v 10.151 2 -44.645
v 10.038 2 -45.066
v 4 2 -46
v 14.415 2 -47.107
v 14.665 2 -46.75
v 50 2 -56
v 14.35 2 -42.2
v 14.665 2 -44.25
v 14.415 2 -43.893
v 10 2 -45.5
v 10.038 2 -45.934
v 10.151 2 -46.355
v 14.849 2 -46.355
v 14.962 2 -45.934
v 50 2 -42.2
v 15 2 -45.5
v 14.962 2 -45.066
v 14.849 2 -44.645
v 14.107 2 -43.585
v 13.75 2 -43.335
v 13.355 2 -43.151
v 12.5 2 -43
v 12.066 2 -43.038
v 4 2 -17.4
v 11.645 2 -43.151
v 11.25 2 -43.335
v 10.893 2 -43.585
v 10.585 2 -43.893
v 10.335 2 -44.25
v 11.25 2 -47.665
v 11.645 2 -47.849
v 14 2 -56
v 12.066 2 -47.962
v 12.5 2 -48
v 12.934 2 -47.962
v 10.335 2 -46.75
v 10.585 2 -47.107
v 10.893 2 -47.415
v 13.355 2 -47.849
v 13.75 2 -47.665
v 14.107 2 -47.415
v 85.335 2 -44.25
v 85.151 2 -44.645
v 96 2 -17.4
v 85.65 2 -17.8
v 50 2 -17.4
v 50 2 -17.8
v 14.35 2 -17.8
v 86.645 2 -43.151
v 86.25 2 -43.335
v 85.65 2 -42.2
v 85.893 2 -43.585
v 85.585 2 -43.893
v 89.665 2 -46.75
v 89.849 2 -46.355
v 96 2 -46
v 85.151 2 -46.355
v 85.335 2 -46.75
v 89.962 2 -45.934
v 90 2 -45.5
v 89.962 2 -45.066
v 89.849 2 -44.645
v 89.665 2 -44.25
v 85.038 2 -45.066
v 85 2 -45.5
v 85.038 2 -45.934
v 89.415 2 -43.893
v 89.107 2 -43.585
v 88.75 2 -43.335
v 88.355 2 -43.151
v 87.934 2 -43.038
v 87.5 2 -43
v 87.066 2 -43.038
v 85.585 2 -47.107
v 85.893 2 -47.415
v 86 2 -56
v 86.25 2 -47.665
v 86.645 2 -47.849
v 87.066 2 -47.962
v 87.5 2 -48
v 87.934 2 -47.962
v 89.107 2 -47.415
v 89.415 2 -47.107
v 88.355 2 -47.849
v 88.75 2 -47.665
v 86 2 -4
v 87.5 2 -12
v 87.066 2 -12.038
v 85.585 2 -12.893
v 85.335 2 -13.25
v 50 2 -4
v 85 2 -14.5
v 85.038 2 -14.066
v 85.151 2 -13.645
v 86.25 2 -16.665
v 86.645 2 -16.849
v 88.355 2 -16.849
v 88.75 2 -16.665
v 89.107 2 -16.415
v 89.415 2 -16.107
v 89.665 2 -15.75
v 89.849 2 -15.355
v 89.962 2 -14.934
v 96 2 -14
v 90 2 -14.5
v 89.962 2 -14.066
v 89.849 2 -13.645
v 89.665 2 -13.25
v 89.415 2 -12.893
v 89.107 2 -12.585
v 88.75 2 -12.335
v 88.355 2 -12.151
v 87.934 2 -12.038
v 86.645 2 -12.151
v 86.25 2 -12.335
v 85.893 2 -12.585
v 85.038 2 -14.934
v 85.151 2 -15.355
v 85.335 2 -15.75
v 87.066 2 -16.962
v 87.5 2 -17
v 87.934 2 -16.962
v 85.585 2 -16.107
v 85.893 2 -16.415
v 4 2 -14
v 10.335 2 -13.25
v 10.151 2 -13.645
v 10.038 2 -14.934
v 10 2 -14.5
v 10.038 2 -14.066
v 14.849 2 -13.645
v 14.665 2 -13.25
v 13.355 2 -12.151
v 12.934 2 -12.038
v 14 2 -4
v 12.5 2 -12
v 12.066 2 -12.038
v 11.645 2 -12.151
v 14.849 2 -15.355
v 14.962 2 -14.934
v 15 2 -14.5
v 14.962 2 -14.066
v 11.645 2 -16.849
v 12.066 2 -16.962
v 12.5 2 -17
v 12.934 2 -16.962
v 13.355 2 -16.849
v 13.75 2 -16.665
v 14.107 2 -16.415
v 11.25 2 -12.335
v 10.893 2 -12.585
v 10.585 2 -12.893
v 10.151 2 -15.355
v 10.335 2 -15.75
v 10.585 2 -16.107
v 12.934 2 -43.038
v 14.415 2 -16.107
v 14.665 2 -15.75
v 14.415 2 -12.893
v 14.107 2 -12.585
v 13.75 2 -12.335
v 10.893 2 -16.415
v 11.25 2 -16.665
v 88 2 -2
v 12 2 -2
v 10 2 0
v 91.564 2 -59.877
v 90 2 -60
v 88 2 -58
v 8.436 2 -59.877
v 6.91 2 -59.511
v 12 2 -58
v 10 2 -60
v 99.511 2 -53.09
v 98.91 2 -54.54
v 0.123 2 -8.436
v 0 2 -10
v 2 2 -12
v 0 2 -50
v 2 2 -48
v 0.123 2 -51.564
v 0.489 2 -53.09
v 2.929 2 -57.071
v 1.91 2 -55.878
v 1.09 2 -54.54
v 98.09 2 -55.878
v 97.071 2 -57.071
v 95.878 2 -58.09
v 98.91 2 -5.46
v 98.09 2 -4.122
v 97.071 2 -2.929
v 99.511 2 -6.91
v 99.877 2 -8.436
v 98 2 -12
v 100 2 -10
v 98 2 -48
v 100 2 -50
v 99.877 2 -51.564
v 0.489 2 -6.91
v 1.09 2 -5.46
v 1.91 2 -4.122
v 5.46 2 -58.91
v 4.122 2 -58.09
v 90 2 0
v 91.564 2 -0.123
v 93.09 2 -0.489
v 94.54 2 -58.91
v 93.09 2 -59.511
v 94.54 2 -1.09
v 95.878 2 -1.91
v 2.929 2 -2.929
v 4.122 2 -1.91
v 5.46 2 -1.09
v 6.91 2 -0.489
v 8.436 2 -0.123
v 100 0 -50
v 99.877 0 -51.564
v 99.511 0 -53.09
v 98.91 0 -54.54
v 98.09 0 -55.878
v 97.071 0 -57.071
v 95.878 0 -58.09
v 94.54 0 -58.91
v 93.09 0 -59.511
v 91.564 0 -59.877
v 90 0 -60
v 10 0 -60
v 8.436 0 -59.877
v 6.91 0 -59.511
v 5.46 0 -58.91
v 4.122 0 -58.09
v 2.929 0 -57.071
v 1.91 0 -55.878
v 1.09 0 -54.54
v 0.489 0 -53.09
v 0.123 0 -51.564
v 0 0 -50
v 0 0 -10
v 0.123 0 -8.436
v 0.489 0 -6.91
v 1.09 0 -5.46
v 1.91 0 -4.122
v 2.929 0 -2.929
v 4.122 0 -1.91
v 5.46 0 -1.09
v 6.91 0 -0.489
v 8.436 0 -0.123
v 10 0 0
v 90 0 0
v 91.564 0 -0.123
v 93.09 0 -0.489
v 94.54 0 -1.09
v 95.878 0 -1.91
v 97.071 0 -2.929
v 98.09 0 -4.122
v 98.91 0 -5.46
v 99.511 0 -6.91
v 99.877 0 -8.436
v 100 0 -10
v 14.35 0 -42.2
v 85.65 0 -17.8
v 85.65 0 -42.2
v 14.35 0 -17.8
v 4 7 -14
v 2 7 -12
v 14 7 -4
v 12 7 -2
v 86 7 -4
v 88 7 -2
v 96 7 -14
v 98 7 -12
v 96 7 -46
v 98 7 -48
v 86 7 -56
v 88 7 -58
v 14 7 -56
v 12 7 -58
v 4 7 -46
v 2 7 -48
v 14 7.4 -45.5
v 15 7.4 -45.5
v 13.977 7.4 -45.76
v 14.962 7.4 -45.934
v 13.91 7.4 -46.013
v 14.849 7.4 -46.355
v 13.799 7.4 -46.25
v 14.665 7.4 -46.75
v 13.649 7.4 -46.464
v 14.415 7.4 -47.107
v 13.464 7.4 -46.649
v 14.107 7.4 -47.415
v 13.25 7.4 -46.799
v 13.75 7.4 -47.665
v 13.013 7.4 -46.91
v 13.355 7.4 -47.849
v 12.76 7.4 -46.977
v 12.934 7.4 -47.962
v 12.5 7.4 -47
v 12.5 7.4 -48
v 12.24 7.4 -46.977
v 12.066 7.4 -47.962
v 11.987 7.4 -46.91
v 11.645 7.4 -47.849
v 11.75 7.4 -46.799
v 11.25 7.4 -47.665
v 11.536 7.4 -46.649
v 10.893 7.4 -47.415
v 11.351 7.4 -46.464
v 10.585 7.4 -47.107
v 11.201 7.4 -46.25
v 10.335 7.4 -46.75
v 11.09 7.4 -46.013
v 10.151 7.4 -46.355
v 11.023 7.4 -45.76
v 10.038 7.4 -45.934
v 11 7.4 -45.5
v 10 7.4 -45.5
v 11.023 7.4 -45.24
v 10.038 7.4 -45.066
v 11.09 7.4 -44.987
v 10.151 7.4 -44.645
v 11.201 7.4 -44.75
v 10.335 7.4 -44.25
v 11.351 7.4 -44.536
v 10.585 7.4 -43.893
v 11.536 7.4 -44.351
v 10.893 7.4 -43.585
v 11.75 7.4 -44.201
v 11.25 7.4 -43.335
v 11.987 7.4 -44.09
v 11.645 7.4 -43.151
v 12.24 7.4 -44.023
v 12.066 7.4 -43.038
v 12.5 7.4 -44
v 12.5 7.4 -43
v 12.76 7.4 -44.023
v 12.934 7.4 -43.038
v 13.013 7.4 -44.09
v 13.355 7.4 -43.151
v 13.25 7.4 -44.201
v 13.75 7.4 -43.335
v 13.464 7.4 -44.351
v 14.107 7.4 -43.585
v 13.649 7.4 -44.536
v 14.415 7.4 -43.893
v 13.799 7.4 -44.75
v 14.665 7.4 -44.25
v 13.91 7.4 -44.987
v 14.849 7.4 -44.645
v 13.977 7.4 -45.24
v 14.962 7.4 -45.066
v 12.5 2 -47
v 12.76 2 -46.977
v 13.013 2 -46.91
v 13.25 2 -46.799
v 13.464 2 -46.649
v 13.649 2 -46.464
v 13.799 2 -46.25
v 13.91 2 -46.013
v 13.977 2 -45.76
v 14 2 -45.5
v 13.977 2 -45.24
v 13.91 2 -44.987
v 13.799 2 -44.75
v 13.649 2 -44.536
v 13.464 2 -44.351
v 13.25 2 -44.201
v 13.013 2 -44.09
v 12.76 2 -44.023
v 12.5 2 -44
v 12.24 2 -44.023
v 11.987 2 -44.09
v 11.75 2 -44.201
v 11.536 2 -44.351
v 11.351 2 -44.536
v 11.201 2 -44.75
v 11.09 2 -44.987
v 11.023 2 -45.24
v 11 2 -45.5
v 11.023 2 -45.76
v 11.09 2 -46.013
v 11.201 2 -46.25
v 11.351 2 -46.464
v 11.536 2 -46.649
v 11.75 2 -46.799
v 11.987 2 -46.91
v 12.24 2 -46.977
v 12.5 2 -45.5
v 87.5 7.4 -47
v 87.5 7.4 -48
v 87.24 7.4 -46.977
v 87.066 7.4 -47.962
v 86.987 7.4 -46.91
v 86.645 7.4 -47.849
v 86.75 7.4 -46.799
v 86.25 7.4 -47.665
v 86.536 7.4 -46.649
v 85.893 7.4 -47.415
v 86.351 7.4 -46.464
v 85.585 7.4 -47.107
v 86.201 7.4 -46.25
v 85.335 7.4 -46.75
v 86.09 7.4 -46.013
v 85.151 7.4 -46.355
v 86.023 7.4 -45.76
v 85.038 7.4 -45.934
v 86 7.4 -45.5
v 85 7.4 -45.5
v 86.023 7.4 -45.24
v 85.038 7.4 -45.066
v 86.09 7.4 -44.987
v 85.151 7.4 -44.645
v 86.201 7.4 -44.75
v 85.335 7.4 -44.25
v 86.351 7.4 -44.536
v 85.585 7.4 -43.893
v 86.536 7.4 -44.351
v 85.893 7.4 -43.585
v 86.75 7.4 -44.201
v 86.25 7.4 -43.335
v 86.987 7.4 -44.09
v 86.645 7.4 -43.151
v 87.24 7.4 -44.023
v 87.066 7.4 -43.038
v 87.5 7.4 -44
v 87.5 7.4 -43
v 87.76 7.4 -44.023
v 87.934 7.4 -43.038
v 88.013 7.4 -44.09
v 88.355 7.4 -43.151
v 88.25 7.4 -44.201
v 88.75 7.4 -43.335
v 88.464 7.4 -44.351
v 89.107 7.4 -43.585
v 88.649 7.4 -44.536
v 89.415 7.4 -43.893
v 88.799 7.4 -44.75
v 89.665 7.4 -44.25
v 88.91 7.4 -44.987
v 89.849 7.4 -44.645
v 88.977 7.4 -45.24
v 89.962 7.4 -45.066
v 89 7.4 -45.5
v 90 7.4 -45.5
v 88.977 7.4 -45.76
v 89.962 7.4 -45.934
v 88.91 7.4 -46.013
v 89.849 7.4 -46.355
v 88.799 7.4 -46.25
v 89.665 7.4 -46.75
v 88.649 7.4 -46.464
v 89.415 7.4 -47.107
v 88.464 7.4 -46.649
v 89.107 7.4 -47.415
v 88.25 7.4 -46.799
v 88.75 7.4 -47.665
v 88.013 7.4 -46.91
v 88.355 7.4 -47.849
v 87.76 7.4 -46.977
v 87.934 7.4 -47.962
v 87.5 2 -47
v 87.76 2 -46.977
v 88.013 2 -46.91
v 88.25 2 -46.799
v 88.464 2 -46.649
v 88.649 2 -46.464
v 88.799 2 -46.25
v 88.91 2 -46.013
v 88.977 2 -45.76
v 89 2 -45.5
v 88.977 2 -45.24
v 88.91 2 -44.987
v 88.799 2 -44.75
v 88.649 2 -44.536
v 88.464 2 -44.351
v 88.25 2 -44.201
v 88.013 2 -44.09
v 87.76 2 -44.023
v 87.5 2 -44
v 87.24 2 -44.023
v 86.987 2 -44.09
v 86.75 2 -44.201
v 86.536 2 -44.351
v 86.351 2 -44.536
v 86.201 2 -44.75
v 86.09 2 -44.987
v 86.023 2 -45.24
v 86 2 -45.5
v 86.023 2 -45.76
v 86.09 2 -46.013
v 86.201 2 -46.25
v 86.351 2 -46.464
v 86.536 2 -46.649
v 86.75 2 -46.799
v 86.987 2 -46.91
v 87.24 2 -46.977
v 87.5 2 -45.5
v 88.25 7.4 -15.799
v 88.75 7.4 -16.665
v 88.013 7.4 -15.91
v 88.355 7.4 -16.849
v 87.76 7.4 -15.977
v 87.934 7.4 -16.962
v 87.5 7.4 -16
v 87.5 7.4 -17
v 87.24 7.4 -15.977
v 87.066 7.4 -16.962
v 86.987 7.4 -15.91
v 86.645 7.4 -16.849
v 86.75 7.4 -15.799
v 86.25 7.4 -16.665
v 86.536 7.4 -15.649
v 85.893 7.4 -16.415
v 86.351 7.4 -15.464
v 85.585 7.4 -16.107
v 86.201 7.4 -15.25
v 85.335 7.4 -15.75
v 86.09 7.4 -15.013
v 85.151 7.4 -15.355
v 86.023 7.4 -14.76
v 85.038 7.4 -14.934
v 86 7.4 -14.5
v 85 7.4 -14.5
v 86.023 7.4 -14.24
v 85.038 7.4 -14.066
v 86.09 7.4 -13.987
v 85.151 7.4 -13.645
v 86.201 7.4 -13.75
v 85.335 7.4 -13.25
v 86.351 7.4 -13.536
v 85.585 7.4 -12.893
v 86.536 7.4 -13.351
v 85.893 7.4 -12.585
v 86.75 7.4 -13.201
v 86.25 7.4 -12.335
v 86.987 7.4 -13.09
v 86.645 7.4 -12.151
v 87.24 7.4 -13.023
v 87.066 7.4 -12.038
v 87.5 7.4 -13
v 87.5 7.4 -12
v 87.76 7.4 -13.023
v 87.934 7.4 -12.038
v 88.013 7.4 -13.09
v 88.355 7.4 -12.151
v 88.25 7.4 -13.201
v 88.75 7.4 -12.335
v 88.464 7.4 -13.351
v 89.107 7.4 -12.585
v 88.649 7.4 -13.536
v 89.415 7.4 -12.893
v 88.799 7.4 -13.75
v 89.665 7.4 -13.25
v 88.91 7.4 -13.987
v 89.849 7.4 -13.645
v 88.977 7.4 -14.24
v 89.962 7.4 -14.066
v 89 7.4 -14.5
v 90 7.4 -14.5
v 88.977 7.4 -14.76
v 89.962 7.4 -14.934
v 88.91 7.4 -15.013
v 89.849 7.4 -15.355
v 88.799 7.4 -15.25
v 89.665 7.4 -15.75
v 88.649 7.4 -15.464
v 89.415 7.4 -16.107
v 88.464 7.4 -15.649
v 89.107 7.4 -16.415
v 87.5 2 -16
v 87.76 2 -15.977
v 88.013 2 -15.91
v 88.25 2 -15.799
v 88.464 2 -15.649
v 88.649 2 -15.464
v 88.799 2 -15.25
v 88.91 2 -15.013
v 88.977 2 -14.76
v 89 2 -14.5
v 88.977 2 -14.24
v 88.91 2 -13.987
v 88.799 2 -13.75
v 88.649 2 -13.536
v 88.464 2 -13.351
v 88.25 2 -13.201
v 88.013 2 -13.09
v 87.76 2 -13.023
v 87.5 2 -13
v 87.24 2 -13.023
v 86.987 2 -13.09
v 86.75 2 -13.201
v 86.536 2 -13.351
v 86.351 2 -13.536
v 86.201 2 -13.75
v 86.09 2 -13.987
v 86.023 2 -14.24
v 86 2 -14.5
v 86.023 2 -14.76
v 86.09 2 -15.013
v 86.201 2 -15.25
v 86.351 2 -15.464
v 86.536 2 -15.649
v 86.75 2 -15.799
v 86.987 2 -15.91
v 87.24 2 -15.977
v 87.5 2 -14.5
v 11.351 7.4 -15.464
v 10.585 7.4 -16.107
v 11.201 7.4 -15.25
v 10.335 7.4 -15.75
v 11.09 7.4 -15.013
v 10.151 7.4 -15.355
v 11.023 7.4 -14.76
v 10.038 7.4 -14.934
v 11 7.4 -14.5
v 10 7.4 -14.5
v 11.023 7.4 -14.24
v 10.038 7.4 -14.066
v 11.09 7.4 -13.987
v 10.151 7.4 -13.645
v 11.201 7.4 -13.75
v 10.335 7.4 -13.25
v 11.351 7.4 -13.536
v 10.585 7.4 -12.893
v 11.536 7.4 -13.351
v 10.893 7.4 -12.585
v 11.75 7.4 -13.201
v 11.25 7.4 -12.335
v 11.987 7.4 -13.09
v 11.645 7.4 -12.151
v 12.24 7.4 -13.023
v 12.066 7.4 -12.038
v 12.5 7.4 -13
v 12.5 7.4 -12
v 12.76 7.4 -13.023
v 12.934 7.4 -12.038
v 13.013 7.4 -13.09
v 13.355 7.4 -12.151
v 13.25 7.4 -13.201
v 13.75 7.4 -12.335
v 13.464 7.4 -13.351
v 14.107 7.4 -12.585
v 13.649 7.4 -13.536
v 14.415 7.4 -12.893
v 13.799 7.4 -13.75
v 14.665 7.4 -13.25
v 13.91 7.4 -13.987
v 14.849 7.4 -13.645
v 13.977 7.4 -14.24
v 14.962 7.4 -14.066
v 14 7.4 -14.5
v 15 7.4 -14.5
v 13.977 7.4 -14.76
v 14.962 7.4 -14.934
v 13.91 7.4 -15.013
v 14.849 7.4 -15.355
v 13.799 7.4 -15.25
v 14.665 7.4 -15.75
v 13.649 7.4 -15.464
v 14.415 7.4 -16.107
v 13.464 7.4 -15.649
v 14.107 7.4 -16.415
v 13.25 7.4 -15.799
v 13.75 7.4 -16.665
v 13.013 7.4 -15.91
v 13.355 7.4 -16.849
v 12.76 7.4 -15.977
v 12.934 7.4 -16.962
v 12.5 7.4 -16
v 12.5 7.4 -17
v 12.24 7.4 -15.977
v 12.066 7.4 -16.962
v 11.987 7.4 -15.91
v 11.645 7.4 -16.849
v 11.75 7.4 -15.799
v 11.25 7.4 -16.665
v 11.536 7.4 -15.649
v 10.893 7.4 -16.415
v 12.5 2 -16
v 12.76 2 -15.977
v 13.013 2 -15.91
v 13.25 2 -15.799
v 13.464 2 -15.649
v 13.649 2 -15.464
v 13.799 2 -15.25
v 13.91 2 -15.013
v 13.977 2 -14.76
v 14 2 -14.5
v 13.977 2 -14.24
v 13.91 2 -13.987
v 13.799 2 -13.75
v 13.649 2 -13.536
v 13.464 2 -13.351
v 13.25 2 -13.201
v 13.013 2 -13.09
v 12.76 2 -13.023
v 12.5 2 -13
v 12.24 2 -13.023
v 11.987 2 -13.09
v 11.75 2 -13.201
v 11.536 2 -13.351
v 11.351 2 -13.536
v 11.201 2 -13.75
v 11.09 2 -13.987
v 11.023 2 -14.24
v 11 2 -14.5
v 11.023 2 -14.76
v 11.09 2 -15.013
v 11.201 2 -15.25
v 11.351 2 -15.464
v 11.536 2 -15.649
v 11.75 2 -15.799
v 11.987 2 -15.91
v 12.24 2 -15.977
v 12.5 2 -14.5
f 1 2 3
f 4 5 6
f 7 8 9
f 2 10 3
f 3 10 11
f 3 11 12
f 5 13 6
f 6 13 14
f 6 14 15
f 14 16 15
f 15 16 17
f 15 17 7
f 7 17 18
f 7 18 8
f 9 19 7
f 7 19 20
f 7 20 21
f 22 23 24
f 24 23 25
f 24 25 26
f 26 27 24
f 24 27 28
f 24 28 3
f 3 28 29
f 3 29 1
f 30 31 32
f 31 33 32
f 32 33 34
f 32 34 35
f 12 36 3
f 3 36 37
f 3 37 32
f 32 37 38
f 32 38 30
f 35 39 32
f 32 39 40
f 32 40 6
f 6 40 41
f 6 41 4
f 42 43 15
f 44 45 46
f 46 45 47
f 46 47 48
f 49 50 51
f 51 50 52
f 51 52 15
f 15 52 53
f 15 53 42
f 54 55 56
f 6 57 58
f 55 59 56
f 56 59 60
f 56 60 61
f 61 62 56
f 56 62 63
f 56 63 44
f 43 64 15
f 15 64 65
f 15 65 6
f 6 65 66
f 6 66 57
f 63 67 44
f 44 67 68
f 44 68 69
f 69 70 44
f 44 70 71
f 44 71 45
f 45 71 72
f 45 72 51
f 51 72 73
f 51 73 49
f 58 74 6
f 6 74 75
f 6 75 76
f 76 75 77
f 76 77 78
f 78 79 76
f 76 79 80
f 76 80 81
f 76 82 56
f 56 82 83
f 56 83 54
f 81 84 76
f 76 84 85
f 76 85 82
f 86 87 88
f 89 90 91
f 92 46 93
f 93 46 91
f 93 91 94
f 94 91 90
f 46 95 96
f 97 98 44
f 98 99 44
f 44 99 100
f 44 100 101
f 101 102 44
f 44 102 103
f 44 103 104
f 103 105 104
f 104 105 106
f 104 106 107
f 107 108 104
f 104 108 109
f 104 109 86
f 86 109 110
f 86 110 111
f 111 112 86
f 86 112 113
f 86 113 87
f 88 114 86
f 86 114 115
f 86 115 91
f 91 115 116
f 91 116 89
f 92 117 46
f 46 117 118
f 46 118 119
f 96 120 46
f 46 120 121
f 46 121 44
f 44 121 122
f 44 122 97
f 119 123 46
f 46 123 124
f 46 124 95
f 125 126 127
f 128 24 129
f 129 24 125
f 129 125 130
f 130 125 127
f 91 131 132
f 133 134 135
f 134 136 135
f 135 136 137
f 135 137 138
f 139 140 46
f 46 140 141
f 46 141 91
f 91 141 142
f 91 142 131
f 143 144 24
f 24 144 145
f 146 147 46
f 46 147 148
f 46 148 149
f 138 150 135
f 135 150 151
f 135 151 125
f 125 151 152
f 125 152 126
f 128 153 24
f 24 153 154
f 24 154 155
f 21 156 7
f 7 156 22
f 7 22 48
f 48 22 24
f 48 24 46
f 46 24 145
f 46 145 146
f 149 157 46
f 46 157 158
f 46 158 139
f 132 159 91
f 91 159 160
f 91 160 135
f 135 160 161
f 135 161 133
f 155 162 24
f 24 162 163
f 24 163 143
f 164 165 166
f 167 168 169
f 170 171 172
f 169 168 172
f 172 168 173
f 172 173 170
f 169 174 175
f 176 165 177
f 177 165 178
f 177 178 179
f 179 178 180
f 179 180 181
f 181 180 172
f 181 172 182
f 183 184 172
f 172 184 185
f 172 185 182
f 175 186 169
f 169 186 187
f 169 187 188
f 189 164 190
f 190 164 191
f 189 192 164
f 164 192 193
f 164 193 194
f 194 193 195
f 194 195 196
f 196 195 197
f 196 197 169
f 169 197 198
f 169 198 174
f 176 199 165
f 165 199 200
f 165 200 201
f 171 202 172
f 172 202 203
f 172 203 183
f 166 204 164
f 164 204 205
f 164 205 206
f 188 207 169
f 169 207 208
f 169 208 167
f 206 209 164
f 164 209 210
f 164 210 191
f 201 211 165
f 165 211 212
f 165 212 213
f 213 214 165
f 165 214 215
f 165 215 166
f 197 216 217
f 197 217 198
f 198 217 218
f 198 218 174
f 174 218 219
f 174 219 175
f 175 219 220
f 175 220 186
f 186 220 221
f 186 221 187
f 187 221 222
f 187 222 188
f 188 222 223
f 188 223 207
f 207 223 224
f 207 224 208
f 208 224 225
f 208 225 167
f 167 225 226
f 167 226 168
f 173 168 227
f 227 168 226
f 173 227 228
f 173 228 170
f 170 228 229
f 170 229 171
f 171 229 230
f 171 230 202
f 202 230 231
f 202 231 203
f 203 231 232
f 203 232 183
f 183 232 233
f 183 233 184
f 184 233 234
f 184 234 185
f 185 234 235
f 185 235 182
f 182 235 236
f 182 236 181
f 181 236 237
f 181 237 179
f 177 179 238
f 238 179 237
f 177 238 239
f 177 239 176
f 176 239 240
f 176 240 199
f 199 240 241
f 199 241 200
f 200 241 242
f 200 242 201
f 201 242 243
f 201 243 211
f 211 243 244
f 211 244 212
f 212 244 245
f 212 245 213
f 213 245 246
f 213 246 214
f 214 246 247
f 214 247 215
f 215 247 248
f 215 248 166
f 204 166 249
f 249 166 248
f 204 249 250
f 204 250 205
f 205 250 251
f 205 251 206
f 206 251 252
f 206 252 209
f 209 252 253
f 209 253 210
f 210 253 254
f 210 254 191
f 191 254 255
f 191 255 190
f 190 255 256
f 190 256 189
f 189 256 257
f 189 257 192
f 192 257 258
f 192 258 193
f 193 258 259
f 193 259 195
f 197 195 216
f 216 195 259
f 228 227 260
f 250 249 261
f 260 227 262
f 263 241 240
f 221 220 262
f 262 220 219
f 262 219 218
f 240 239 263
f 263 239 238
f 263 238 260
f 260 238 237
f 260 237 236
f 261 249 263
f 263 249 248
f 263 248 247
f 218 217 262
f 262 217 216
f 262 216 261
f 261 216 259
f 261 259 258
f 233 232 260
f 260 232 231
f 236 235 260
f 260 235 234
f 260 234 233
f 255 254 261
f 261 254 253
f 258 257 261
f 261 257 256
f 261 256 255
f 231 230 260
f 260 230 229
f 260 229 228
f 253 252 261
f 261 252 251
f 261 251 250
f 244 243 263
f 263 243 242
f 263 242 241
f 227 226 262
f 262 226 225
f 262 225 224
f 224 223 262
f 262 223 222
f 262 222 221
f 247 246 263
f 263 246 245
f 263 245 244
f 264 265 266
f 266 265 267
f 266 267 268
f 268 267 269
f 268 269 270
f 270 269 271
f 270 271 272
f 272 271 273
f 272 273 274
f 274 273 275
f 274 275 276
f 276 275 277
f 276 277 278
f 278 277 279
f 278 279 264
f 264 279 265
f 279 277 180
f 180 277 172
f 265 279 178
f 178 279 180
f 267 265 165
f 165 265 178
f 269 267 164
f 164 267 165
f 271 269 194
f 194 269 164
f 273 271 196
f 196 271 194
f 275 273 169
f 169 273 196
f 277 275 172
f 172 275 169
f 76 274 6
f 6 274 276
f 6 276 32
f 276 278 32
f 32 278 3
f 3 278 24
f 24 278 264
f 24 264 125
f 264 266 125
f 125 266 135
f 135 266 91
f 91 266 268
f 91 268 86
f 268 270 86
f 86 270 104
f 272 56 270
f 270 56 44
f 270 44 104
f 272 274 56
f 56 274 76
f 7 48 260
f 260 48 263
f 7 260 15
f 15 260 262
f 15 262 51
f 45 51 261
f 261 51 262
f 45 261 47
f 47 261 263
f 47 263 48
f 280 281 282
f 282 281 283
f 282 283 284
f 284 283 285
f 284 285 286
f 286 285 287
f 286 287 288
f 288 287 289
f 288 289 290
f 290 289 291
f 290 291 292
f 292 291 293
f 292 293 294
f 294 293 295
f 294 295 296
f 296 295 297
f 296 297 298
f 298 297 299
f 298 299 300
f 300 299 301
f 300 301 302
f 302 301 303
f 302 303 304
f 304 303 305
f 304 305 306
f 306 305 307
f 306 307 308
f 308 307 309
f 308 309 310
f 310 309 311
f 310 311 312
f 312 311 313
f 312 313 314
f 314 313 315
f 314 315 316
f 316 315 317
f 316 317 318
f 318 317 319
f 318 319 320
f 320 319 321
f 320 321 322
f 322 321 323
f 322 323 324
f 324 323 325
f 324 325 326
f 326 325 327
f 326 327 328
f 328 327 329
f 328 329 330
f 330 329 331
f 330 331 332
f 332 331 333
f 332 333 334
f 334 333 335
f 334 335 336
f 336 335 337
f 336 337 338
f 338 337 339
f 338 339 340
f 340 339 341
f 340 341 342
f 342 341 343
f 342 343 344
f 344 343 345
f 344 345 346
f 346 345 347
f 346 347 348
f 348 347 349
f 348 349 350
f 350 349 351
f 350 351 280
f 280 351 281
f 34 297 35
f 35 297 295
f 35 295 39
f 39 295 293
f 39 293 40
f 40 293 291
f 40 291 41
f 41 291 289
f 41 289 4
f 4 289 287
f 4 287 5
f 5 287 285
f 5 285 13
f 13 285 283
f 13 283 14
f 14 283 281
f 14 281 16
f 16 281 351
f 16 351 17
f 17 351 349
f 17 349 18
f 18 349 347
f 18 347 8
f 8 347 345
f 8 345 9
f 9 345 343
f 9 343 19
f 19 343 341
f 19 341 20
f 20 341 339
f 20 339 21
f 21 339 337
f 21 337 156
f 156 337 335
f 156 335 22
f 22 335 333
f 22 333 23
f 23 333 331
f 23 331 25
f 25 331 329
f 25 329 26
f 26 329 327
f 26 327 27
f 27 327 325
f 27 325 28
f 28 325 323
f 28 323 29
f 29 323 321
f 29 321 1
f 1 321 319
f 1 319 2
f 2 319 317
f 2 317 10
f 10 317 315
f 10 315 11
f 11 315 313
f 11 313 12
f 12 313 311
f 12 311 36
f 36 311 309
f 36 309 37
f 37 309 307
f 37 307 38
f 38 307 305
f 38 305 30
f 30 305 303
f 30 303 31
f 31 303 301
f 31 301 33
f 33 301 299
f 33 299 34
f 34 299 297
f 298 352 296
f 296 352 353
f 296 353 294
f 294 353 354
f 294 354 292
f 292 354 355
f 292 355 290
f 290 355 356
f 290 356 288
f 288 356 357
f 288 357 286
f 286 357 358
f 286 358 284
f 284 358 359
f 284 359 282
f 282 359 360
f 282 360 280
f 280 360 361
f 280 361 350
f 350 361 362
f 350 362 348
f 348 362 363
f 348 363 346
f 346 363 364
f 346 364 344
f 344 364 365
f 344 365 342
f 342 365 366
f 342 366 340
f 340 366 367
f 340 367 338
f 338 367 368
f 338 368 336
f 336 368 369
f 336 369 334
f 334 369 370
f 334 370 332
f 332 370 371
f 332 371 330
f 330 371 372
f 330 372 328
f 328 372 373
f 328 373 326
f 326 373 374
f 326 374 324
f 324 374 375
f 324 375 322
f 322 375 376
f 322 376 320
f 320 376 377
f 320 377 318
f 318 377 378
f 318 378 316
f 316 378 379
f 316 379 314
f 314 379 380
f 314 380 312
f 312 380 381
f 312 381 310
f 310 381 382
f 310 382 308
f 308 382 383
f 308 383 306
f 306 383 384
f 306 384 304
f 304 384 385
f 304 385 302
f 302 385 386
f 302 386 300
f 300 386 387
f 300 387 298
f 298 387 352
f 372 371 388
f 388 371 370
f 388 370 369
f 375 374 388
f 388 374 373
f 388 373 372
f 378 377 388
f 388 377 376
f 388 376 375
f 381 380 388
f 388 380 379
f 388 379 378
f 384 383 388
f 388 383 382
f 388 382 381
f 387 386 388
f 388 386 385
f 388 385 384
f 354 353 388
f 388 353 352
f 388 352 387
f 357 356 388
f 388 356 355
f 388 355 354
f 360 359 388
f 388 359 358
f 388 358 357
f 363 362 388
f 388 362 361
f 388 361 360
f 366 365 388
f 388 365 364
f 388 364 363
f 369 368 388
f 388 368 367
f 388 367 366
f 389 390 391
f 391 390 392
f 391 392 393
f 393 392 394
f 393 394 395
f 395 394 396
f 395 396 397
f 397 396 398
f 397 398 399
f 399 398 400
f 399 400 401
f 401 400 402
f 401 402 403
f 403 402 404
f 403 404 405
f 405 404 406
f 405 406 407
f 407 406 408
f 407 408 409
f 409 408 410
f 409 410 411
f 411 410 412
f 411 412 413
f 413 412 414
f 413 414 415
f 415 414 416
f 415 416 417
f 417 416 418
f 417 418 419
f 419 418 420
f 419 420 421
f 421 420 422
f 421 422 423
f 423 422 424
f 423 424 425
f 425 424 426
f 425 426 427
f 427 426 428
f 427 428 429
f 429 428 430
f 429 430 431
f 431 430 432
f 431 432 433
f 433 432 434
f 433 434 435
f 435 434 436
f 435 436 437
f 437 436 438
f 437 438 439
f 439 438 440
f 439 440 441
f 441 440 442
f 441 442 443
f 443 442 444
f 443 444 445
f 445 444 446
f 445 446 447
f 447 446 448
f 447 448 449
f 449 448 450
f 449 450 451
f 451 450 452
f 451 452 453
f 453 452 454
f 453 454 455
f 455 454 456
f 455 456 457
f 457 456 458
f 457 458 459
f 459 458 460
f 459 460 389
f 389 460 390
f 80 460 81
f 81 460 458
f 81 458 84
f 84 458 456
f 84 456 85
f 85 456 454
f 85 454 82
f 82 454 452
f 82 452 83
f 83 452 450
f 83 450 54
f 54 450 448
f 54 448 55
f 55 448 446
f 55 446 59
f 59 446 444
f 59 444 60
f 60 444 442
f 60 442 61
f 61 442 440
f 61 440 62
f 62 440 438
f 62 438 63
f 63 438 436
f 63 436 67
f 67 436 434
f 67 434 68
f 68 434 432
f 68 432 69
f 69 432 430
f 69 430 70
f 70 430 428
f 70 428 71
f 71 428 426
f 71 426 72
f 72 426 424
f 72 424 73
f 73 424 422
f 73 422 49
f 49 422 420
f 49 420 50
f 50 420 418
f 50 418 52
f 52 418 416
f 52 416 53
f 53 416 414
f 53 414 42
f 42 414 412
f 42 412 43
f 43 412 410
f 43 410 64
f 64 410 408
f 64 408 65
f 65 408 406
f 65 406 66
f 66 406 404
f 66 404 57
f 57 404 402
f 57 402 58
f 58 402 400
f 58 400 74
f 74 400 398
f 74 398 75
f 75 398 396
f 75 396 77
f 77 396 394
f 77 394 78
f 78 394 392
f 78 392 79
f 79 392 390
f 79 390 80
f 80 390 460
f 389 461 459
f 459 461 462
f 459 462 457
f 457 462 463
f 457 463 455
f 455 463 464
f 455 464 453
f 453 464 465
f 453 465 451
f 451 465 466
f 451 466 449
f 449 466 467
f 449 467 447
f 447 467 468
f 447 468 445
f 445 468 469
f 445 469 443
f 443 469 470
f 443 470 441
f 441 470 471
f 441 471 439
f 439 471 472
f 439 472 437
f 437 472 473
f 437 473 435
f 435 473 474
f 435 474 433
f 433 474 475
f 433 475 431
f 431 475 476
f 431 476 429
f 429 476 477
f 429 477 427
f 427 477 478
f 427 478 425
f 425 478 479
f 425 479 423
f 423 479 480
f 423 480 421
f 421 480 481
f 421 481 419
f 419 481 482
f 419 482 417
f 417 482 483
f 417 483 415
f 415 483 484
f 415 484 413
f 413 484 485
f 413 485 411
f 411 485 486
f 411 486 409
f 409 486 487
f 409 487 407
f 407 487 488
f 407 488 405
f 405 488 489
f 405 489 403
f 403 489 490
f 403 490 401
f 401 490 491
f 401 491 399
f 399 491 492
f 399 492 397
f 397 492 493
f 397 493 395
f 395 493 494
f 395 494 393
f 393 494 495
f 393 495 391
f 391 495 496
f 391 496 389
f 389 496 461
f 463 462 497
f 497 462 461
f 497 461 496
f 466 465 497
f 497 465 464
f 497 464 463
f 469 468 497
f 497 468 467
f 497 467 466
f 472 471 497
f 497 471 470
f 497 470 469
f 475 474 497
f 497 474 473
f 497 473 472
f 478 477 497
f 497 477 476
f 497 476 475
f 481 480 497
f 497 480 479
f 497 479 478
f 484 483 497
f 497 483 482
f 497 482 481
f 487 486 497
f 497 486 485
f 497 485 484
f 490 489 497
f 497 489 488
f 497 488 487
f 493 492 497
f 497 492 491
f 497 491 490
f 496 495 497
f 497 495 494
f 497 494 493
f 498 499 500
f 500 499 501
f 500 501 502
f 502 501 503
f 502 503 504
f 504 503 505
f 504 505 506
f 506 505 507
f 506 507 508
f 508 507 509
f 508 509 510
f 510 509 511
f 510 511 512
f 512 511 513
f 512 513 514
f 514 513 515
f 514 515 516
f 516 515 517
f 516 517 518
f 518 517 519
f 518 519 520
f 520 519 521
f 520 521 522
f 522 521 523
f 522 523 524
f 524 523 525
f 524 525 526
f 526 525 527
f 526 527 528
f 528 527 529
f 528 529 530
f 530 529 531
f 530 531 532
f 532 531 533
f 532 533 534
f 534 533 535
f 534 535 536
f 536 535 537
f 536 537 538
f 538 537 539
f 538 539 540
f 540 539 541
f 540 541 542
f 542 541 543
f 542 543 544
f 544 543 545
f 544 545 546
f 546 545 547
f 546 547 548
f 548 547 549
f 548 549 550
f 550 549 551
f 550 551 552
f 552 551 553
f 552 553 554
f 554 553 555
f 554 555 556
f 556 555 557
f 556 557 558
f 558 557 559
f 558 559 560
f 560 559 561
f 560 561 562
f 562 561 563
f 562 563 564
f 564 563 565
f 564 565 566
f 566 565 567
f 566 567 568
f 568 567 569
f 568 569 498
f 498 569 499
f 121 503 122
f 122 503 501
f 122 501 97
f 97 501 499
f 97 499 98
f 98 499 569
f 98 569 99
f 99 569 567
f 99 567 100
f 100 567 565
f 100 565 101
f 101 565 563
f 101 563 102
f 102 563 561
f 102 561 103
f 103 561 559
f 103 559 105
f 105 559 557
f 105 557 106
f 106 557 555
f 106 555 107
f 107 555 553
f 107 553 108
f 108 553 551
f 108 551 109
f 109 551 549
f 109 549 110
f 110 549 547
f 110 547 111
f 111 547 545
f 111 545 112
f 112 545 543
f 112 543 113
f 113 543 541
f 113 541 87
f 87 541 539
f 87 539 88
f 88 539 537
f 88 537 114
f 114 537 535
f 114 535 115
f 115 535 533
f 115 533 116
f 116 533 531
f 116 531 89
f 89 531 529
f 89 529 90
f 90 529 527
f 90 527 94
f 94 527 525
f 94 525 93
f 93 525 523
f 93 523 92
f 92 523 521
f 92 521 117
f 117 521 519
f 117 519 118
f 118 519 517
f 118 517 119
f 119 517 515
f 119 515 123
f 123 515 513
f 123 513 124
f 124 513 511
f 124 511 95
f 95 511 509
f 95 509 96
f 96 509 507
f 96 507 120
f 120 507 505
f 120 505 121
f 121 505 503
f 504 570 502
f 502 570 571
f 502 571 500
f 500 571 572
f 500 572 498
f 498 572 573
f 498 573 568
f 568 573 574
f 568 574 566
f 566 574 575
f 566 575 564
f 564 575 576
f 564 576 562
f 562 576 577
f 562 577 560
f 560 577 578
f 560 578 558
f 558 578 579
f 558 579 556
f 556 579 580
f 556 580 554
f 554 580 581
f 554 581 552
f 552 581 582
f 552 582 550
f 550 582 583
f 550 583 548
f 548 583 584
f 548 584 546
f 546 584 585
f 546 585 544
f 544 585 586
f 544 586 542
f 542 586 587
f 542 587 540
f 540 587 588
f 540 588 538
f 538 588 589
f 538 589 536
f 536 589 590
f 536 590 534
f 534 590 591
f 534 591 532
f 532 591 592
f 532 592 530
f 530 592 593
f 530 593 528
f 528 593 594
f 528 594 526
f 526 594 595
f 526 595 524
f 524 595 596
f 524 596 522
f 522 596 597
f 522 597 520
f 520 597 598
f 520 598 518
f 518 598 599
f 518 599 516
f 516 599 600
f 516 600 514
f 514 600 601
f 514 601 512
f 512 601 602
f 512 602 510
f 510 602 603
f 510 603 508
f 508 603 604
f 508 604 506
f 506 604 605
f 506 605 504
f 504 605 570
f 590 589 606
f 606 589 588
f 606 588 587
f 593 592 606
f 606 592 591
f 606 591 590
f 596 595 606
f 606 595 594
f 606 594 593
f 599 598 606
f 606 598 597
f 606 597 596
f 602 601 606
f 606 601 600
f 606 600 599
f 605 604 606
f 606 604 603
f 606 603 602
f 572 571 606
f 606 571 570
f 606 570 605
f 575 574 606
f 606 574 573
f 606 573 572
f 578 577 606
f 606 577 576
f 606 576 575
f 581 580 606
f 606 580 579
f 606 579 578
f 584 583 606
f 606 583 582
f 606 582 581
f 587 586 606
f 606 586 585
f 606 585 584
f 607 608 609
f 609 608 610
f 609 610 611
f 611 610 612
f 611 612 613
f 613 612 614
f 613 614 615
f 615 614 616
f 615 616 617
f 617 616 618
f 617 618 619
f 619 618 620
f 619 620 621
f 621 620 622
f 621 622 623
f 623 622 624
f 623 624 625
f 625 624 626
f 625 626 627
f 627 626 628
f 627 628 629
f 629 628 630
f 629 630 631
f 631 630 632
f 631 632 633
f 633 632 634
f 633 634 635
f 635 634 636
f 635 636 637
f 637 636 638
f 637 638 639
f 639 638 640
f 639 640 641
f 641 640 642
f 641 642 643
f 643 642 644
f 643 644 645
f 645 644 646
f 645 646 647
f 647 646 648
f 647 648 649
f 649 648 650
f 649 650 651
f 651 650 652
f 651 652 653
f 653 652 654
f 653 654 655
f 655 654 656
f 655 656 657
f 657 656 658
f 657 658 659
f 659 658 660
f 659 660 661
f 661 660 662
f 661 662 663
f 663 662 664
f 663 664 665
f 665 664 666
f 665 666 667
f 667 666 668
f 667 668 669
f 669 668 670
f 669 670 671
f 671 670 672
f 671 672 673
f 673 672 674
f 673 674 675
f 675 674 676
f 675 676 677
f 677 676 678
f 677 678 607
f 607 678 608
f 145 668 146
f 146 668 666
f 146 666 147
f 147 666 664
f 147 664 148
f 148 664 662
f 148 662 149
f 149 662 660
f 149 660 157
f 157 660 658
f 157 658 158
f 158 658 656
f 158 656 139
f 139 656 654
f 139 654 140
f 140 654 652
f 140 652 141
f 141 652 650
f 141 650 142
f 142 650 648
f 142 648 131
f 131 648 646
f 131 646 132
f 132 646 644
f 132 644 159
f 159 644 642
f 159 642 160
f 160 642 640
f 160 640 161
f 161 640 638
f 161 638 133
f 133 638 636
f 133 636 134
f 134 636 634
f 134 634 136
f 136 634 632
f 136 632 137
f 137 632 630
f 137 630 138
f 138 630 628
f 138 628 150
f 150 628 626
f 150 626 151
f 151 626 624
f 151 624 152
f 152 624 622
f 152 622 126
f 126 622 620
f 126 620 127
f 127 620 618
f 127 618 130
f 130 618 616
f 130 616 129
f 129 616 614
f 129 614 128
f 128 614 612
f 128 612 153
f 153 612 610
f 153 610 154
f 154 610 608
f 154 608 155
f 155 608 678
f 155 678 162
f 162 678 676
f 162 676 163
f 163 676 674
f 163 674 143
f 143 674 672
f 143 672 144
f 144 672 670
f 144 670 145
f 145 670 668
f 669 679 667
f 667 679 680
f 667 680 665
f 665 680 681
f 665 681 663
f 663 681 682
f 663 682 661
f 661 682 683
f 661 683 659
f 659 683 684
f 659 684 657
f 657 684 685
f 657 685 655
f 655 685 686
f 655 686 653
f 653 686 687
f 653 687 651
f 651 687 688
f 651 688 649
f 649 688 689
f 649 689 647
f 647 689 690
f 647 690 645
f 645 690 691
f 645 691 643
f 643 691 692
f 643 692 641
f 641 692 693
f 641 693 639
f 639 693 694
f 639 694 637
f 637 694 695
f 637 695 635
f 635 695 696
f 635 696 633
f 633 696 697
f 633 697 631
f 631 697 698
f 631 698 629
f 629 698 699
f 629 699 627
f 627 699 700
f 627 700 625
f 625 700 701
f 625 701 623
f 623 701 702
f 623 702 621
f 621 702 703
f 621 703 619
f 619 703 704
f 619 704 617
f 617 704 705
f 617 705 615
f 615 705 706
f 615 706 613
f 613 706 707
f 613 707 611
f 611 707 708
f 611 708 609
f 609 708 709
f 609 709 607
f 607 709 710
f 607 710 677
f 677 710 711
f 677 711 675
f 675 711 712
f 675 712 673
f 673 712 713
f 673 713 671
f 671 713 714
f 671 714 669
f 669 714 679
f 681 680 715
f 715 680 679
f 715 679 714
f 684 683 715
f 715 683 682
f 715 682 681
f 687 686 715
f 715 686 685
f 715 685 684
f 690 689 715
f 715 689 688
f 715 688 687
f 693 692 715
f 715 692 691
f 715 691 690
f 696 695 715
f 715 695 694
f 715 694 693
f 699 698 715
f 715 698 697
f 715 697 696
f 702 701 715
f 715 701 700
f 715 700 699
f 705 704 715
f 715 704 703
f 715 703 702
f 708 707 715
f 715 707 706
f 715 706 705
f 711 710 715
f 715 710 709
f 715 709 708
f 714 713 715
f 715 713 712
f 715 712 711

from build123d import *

# Parameters (mm, degrees)
Y_KSEKLIK_EKSTR_ZYON1_DEPTH = 2
Y_KSEKLIK_EKSTR_ZYON2_DEPTH = 5
IZIM3_W                     = 71.3
IZIM3_H                     = 24.4
KES_EKSTR_ZYON1_DEPTH       = 5
IZIM4_R                     = 2.5
IZIM4_R_2                   = 1.5
Y_KSEKLIK_EKSTR_ZYON3_DEPTH = 5.4


with BuildPart() as part:
    # Çizim1 → Yükseklik-Ekstrüzyon1 (new body)
    with BuildSketch(Plane(origin=(0, 0, 0), x_dir=(1, 0, 0), z_dir=(0, 1, 0))):
        with BuildLine():
            Line((10, 0), (90, 0))
            ThreePointArc((90, 0), (97.071067812, 2.928932188), (100, 10))
            Line((100, 10), (100, 50))
            ThreePointArc((100, 50), (97.071067812, 57.071067812), (90, 60))
            Line((90, 60), (10, 60))
            ThreePointArc((10, 60), (2.928932188, 57.071067812), (0, 50))
            Line((0, 50), (0, 10))
            ThreePointArc((0, 10), (2.928932188, 2.928932188), (10, 0))
        make_face()
    extrude(amount=Y_KSEKLIK_EKSTR_ZYON1_DEPTH)

    # Çizim2 → Yükseklik-Ekstrüzyon2 (add)
    with BuildSketch(Plane(origin=(0, 2, 0), x_dir=(1, 0, 0), z_dir=(0, 1, 0))):
        Polygon((12, 2), (88, 2), (98, 12), (98, 48), (88, 58), (12, 58), (2, 48), (2, 12), align=None)
        Polygon((4, 46), (4, 14), (14, 4), (86, 4), (96, 14), (96, 46), (86, 56), (14, 56), align=None, mode=Mode.SUBTRACT)
    extrude(amount=Y_KSEKLIK_EKSTR_ZYON2_DEPTH)

    # Çizim3 → Kes-Ekstrüzyon1 (cut)
    with BuildSketch(Plane(origin=(0, 2, 0), x_dir=(1, 0, 0), z_dir=(0, 1, 0))):
        with Locations((50, 30)):
            Rectangle(IZIM3_W, IZIM3_H)
    extrude(amount=-KES_EKSTR_ZYON1_DEPTH, mode=Mode.SUBTRACT)

    # Çizim4 → Yükseklik-Ekstrüzyon3 (add)
    # profile 1 of 4: a face of its own
    with BuildSketch(Plane(origin=(0, 2, 0), x_dir=(1, 0, 0), z_dir=(0, 1, 0))):
        with Locations(Location((12.5, 45.5, 0), (0, 0, 90))):
            Circle(IZIM4_R)
        with Locations(Location((12.5, 45.5, 0), (0, 0, 90))):
            Circle(IZIM4_R_2, mode=Mode.SUBTRACT)
    # profile 2 of 4: a face of its own
    with BuildSketch(Plane(origin=(0, 2, 0), x_dir=(1, 0, 0), z_dir=(0, 1, 0))):
        with Locations(Location((87.5, 45.5, 0), (0, 0, 90))):
            Circle(IZIM4_R)
        with Locations(Location((87.5, 45.5, 0), (0, 0, 90))):
            Circle(IZIM4_R_2, mode=Mode.SUBTRACT)
    # profile 3 of 4: a face of its own
    with BuildSketch(Plane(origin=(0, 2, 0), x_dir=(1, 0, 0), z_dir=(0, 1, 0))):
        with Locations(Location((87.5, 14.5, 0), (0, 0, 90))):
            Circle(IZIM4_R)
        with Locations(Location((87.5, 14.5, 0), (0, 0, 90))):
            Circle(IZIM4_R_2, mode=Mode.SUBTRACT)
    # profile 4 of 4: a face of its own
    with BuildSketch(Plane(origin=(0, 2, 0), x_dir=(1, 0, 0), z_dir=(0, 1, 0))):
        with Locations(Location((12.5, 14.5, 0), (0, 0, 90))):
            Circle(IZIM4_R)
        with Locations(Location((12.5, 14.5, 0), (0, 0, 90))):
            Circle(IZIM4_R_2, mode=Mode.SUBTRACT)
    extrude(amount=Y_KSEKLIK_EKSTR_ZYON3_DEPTH)


solid = part.part
